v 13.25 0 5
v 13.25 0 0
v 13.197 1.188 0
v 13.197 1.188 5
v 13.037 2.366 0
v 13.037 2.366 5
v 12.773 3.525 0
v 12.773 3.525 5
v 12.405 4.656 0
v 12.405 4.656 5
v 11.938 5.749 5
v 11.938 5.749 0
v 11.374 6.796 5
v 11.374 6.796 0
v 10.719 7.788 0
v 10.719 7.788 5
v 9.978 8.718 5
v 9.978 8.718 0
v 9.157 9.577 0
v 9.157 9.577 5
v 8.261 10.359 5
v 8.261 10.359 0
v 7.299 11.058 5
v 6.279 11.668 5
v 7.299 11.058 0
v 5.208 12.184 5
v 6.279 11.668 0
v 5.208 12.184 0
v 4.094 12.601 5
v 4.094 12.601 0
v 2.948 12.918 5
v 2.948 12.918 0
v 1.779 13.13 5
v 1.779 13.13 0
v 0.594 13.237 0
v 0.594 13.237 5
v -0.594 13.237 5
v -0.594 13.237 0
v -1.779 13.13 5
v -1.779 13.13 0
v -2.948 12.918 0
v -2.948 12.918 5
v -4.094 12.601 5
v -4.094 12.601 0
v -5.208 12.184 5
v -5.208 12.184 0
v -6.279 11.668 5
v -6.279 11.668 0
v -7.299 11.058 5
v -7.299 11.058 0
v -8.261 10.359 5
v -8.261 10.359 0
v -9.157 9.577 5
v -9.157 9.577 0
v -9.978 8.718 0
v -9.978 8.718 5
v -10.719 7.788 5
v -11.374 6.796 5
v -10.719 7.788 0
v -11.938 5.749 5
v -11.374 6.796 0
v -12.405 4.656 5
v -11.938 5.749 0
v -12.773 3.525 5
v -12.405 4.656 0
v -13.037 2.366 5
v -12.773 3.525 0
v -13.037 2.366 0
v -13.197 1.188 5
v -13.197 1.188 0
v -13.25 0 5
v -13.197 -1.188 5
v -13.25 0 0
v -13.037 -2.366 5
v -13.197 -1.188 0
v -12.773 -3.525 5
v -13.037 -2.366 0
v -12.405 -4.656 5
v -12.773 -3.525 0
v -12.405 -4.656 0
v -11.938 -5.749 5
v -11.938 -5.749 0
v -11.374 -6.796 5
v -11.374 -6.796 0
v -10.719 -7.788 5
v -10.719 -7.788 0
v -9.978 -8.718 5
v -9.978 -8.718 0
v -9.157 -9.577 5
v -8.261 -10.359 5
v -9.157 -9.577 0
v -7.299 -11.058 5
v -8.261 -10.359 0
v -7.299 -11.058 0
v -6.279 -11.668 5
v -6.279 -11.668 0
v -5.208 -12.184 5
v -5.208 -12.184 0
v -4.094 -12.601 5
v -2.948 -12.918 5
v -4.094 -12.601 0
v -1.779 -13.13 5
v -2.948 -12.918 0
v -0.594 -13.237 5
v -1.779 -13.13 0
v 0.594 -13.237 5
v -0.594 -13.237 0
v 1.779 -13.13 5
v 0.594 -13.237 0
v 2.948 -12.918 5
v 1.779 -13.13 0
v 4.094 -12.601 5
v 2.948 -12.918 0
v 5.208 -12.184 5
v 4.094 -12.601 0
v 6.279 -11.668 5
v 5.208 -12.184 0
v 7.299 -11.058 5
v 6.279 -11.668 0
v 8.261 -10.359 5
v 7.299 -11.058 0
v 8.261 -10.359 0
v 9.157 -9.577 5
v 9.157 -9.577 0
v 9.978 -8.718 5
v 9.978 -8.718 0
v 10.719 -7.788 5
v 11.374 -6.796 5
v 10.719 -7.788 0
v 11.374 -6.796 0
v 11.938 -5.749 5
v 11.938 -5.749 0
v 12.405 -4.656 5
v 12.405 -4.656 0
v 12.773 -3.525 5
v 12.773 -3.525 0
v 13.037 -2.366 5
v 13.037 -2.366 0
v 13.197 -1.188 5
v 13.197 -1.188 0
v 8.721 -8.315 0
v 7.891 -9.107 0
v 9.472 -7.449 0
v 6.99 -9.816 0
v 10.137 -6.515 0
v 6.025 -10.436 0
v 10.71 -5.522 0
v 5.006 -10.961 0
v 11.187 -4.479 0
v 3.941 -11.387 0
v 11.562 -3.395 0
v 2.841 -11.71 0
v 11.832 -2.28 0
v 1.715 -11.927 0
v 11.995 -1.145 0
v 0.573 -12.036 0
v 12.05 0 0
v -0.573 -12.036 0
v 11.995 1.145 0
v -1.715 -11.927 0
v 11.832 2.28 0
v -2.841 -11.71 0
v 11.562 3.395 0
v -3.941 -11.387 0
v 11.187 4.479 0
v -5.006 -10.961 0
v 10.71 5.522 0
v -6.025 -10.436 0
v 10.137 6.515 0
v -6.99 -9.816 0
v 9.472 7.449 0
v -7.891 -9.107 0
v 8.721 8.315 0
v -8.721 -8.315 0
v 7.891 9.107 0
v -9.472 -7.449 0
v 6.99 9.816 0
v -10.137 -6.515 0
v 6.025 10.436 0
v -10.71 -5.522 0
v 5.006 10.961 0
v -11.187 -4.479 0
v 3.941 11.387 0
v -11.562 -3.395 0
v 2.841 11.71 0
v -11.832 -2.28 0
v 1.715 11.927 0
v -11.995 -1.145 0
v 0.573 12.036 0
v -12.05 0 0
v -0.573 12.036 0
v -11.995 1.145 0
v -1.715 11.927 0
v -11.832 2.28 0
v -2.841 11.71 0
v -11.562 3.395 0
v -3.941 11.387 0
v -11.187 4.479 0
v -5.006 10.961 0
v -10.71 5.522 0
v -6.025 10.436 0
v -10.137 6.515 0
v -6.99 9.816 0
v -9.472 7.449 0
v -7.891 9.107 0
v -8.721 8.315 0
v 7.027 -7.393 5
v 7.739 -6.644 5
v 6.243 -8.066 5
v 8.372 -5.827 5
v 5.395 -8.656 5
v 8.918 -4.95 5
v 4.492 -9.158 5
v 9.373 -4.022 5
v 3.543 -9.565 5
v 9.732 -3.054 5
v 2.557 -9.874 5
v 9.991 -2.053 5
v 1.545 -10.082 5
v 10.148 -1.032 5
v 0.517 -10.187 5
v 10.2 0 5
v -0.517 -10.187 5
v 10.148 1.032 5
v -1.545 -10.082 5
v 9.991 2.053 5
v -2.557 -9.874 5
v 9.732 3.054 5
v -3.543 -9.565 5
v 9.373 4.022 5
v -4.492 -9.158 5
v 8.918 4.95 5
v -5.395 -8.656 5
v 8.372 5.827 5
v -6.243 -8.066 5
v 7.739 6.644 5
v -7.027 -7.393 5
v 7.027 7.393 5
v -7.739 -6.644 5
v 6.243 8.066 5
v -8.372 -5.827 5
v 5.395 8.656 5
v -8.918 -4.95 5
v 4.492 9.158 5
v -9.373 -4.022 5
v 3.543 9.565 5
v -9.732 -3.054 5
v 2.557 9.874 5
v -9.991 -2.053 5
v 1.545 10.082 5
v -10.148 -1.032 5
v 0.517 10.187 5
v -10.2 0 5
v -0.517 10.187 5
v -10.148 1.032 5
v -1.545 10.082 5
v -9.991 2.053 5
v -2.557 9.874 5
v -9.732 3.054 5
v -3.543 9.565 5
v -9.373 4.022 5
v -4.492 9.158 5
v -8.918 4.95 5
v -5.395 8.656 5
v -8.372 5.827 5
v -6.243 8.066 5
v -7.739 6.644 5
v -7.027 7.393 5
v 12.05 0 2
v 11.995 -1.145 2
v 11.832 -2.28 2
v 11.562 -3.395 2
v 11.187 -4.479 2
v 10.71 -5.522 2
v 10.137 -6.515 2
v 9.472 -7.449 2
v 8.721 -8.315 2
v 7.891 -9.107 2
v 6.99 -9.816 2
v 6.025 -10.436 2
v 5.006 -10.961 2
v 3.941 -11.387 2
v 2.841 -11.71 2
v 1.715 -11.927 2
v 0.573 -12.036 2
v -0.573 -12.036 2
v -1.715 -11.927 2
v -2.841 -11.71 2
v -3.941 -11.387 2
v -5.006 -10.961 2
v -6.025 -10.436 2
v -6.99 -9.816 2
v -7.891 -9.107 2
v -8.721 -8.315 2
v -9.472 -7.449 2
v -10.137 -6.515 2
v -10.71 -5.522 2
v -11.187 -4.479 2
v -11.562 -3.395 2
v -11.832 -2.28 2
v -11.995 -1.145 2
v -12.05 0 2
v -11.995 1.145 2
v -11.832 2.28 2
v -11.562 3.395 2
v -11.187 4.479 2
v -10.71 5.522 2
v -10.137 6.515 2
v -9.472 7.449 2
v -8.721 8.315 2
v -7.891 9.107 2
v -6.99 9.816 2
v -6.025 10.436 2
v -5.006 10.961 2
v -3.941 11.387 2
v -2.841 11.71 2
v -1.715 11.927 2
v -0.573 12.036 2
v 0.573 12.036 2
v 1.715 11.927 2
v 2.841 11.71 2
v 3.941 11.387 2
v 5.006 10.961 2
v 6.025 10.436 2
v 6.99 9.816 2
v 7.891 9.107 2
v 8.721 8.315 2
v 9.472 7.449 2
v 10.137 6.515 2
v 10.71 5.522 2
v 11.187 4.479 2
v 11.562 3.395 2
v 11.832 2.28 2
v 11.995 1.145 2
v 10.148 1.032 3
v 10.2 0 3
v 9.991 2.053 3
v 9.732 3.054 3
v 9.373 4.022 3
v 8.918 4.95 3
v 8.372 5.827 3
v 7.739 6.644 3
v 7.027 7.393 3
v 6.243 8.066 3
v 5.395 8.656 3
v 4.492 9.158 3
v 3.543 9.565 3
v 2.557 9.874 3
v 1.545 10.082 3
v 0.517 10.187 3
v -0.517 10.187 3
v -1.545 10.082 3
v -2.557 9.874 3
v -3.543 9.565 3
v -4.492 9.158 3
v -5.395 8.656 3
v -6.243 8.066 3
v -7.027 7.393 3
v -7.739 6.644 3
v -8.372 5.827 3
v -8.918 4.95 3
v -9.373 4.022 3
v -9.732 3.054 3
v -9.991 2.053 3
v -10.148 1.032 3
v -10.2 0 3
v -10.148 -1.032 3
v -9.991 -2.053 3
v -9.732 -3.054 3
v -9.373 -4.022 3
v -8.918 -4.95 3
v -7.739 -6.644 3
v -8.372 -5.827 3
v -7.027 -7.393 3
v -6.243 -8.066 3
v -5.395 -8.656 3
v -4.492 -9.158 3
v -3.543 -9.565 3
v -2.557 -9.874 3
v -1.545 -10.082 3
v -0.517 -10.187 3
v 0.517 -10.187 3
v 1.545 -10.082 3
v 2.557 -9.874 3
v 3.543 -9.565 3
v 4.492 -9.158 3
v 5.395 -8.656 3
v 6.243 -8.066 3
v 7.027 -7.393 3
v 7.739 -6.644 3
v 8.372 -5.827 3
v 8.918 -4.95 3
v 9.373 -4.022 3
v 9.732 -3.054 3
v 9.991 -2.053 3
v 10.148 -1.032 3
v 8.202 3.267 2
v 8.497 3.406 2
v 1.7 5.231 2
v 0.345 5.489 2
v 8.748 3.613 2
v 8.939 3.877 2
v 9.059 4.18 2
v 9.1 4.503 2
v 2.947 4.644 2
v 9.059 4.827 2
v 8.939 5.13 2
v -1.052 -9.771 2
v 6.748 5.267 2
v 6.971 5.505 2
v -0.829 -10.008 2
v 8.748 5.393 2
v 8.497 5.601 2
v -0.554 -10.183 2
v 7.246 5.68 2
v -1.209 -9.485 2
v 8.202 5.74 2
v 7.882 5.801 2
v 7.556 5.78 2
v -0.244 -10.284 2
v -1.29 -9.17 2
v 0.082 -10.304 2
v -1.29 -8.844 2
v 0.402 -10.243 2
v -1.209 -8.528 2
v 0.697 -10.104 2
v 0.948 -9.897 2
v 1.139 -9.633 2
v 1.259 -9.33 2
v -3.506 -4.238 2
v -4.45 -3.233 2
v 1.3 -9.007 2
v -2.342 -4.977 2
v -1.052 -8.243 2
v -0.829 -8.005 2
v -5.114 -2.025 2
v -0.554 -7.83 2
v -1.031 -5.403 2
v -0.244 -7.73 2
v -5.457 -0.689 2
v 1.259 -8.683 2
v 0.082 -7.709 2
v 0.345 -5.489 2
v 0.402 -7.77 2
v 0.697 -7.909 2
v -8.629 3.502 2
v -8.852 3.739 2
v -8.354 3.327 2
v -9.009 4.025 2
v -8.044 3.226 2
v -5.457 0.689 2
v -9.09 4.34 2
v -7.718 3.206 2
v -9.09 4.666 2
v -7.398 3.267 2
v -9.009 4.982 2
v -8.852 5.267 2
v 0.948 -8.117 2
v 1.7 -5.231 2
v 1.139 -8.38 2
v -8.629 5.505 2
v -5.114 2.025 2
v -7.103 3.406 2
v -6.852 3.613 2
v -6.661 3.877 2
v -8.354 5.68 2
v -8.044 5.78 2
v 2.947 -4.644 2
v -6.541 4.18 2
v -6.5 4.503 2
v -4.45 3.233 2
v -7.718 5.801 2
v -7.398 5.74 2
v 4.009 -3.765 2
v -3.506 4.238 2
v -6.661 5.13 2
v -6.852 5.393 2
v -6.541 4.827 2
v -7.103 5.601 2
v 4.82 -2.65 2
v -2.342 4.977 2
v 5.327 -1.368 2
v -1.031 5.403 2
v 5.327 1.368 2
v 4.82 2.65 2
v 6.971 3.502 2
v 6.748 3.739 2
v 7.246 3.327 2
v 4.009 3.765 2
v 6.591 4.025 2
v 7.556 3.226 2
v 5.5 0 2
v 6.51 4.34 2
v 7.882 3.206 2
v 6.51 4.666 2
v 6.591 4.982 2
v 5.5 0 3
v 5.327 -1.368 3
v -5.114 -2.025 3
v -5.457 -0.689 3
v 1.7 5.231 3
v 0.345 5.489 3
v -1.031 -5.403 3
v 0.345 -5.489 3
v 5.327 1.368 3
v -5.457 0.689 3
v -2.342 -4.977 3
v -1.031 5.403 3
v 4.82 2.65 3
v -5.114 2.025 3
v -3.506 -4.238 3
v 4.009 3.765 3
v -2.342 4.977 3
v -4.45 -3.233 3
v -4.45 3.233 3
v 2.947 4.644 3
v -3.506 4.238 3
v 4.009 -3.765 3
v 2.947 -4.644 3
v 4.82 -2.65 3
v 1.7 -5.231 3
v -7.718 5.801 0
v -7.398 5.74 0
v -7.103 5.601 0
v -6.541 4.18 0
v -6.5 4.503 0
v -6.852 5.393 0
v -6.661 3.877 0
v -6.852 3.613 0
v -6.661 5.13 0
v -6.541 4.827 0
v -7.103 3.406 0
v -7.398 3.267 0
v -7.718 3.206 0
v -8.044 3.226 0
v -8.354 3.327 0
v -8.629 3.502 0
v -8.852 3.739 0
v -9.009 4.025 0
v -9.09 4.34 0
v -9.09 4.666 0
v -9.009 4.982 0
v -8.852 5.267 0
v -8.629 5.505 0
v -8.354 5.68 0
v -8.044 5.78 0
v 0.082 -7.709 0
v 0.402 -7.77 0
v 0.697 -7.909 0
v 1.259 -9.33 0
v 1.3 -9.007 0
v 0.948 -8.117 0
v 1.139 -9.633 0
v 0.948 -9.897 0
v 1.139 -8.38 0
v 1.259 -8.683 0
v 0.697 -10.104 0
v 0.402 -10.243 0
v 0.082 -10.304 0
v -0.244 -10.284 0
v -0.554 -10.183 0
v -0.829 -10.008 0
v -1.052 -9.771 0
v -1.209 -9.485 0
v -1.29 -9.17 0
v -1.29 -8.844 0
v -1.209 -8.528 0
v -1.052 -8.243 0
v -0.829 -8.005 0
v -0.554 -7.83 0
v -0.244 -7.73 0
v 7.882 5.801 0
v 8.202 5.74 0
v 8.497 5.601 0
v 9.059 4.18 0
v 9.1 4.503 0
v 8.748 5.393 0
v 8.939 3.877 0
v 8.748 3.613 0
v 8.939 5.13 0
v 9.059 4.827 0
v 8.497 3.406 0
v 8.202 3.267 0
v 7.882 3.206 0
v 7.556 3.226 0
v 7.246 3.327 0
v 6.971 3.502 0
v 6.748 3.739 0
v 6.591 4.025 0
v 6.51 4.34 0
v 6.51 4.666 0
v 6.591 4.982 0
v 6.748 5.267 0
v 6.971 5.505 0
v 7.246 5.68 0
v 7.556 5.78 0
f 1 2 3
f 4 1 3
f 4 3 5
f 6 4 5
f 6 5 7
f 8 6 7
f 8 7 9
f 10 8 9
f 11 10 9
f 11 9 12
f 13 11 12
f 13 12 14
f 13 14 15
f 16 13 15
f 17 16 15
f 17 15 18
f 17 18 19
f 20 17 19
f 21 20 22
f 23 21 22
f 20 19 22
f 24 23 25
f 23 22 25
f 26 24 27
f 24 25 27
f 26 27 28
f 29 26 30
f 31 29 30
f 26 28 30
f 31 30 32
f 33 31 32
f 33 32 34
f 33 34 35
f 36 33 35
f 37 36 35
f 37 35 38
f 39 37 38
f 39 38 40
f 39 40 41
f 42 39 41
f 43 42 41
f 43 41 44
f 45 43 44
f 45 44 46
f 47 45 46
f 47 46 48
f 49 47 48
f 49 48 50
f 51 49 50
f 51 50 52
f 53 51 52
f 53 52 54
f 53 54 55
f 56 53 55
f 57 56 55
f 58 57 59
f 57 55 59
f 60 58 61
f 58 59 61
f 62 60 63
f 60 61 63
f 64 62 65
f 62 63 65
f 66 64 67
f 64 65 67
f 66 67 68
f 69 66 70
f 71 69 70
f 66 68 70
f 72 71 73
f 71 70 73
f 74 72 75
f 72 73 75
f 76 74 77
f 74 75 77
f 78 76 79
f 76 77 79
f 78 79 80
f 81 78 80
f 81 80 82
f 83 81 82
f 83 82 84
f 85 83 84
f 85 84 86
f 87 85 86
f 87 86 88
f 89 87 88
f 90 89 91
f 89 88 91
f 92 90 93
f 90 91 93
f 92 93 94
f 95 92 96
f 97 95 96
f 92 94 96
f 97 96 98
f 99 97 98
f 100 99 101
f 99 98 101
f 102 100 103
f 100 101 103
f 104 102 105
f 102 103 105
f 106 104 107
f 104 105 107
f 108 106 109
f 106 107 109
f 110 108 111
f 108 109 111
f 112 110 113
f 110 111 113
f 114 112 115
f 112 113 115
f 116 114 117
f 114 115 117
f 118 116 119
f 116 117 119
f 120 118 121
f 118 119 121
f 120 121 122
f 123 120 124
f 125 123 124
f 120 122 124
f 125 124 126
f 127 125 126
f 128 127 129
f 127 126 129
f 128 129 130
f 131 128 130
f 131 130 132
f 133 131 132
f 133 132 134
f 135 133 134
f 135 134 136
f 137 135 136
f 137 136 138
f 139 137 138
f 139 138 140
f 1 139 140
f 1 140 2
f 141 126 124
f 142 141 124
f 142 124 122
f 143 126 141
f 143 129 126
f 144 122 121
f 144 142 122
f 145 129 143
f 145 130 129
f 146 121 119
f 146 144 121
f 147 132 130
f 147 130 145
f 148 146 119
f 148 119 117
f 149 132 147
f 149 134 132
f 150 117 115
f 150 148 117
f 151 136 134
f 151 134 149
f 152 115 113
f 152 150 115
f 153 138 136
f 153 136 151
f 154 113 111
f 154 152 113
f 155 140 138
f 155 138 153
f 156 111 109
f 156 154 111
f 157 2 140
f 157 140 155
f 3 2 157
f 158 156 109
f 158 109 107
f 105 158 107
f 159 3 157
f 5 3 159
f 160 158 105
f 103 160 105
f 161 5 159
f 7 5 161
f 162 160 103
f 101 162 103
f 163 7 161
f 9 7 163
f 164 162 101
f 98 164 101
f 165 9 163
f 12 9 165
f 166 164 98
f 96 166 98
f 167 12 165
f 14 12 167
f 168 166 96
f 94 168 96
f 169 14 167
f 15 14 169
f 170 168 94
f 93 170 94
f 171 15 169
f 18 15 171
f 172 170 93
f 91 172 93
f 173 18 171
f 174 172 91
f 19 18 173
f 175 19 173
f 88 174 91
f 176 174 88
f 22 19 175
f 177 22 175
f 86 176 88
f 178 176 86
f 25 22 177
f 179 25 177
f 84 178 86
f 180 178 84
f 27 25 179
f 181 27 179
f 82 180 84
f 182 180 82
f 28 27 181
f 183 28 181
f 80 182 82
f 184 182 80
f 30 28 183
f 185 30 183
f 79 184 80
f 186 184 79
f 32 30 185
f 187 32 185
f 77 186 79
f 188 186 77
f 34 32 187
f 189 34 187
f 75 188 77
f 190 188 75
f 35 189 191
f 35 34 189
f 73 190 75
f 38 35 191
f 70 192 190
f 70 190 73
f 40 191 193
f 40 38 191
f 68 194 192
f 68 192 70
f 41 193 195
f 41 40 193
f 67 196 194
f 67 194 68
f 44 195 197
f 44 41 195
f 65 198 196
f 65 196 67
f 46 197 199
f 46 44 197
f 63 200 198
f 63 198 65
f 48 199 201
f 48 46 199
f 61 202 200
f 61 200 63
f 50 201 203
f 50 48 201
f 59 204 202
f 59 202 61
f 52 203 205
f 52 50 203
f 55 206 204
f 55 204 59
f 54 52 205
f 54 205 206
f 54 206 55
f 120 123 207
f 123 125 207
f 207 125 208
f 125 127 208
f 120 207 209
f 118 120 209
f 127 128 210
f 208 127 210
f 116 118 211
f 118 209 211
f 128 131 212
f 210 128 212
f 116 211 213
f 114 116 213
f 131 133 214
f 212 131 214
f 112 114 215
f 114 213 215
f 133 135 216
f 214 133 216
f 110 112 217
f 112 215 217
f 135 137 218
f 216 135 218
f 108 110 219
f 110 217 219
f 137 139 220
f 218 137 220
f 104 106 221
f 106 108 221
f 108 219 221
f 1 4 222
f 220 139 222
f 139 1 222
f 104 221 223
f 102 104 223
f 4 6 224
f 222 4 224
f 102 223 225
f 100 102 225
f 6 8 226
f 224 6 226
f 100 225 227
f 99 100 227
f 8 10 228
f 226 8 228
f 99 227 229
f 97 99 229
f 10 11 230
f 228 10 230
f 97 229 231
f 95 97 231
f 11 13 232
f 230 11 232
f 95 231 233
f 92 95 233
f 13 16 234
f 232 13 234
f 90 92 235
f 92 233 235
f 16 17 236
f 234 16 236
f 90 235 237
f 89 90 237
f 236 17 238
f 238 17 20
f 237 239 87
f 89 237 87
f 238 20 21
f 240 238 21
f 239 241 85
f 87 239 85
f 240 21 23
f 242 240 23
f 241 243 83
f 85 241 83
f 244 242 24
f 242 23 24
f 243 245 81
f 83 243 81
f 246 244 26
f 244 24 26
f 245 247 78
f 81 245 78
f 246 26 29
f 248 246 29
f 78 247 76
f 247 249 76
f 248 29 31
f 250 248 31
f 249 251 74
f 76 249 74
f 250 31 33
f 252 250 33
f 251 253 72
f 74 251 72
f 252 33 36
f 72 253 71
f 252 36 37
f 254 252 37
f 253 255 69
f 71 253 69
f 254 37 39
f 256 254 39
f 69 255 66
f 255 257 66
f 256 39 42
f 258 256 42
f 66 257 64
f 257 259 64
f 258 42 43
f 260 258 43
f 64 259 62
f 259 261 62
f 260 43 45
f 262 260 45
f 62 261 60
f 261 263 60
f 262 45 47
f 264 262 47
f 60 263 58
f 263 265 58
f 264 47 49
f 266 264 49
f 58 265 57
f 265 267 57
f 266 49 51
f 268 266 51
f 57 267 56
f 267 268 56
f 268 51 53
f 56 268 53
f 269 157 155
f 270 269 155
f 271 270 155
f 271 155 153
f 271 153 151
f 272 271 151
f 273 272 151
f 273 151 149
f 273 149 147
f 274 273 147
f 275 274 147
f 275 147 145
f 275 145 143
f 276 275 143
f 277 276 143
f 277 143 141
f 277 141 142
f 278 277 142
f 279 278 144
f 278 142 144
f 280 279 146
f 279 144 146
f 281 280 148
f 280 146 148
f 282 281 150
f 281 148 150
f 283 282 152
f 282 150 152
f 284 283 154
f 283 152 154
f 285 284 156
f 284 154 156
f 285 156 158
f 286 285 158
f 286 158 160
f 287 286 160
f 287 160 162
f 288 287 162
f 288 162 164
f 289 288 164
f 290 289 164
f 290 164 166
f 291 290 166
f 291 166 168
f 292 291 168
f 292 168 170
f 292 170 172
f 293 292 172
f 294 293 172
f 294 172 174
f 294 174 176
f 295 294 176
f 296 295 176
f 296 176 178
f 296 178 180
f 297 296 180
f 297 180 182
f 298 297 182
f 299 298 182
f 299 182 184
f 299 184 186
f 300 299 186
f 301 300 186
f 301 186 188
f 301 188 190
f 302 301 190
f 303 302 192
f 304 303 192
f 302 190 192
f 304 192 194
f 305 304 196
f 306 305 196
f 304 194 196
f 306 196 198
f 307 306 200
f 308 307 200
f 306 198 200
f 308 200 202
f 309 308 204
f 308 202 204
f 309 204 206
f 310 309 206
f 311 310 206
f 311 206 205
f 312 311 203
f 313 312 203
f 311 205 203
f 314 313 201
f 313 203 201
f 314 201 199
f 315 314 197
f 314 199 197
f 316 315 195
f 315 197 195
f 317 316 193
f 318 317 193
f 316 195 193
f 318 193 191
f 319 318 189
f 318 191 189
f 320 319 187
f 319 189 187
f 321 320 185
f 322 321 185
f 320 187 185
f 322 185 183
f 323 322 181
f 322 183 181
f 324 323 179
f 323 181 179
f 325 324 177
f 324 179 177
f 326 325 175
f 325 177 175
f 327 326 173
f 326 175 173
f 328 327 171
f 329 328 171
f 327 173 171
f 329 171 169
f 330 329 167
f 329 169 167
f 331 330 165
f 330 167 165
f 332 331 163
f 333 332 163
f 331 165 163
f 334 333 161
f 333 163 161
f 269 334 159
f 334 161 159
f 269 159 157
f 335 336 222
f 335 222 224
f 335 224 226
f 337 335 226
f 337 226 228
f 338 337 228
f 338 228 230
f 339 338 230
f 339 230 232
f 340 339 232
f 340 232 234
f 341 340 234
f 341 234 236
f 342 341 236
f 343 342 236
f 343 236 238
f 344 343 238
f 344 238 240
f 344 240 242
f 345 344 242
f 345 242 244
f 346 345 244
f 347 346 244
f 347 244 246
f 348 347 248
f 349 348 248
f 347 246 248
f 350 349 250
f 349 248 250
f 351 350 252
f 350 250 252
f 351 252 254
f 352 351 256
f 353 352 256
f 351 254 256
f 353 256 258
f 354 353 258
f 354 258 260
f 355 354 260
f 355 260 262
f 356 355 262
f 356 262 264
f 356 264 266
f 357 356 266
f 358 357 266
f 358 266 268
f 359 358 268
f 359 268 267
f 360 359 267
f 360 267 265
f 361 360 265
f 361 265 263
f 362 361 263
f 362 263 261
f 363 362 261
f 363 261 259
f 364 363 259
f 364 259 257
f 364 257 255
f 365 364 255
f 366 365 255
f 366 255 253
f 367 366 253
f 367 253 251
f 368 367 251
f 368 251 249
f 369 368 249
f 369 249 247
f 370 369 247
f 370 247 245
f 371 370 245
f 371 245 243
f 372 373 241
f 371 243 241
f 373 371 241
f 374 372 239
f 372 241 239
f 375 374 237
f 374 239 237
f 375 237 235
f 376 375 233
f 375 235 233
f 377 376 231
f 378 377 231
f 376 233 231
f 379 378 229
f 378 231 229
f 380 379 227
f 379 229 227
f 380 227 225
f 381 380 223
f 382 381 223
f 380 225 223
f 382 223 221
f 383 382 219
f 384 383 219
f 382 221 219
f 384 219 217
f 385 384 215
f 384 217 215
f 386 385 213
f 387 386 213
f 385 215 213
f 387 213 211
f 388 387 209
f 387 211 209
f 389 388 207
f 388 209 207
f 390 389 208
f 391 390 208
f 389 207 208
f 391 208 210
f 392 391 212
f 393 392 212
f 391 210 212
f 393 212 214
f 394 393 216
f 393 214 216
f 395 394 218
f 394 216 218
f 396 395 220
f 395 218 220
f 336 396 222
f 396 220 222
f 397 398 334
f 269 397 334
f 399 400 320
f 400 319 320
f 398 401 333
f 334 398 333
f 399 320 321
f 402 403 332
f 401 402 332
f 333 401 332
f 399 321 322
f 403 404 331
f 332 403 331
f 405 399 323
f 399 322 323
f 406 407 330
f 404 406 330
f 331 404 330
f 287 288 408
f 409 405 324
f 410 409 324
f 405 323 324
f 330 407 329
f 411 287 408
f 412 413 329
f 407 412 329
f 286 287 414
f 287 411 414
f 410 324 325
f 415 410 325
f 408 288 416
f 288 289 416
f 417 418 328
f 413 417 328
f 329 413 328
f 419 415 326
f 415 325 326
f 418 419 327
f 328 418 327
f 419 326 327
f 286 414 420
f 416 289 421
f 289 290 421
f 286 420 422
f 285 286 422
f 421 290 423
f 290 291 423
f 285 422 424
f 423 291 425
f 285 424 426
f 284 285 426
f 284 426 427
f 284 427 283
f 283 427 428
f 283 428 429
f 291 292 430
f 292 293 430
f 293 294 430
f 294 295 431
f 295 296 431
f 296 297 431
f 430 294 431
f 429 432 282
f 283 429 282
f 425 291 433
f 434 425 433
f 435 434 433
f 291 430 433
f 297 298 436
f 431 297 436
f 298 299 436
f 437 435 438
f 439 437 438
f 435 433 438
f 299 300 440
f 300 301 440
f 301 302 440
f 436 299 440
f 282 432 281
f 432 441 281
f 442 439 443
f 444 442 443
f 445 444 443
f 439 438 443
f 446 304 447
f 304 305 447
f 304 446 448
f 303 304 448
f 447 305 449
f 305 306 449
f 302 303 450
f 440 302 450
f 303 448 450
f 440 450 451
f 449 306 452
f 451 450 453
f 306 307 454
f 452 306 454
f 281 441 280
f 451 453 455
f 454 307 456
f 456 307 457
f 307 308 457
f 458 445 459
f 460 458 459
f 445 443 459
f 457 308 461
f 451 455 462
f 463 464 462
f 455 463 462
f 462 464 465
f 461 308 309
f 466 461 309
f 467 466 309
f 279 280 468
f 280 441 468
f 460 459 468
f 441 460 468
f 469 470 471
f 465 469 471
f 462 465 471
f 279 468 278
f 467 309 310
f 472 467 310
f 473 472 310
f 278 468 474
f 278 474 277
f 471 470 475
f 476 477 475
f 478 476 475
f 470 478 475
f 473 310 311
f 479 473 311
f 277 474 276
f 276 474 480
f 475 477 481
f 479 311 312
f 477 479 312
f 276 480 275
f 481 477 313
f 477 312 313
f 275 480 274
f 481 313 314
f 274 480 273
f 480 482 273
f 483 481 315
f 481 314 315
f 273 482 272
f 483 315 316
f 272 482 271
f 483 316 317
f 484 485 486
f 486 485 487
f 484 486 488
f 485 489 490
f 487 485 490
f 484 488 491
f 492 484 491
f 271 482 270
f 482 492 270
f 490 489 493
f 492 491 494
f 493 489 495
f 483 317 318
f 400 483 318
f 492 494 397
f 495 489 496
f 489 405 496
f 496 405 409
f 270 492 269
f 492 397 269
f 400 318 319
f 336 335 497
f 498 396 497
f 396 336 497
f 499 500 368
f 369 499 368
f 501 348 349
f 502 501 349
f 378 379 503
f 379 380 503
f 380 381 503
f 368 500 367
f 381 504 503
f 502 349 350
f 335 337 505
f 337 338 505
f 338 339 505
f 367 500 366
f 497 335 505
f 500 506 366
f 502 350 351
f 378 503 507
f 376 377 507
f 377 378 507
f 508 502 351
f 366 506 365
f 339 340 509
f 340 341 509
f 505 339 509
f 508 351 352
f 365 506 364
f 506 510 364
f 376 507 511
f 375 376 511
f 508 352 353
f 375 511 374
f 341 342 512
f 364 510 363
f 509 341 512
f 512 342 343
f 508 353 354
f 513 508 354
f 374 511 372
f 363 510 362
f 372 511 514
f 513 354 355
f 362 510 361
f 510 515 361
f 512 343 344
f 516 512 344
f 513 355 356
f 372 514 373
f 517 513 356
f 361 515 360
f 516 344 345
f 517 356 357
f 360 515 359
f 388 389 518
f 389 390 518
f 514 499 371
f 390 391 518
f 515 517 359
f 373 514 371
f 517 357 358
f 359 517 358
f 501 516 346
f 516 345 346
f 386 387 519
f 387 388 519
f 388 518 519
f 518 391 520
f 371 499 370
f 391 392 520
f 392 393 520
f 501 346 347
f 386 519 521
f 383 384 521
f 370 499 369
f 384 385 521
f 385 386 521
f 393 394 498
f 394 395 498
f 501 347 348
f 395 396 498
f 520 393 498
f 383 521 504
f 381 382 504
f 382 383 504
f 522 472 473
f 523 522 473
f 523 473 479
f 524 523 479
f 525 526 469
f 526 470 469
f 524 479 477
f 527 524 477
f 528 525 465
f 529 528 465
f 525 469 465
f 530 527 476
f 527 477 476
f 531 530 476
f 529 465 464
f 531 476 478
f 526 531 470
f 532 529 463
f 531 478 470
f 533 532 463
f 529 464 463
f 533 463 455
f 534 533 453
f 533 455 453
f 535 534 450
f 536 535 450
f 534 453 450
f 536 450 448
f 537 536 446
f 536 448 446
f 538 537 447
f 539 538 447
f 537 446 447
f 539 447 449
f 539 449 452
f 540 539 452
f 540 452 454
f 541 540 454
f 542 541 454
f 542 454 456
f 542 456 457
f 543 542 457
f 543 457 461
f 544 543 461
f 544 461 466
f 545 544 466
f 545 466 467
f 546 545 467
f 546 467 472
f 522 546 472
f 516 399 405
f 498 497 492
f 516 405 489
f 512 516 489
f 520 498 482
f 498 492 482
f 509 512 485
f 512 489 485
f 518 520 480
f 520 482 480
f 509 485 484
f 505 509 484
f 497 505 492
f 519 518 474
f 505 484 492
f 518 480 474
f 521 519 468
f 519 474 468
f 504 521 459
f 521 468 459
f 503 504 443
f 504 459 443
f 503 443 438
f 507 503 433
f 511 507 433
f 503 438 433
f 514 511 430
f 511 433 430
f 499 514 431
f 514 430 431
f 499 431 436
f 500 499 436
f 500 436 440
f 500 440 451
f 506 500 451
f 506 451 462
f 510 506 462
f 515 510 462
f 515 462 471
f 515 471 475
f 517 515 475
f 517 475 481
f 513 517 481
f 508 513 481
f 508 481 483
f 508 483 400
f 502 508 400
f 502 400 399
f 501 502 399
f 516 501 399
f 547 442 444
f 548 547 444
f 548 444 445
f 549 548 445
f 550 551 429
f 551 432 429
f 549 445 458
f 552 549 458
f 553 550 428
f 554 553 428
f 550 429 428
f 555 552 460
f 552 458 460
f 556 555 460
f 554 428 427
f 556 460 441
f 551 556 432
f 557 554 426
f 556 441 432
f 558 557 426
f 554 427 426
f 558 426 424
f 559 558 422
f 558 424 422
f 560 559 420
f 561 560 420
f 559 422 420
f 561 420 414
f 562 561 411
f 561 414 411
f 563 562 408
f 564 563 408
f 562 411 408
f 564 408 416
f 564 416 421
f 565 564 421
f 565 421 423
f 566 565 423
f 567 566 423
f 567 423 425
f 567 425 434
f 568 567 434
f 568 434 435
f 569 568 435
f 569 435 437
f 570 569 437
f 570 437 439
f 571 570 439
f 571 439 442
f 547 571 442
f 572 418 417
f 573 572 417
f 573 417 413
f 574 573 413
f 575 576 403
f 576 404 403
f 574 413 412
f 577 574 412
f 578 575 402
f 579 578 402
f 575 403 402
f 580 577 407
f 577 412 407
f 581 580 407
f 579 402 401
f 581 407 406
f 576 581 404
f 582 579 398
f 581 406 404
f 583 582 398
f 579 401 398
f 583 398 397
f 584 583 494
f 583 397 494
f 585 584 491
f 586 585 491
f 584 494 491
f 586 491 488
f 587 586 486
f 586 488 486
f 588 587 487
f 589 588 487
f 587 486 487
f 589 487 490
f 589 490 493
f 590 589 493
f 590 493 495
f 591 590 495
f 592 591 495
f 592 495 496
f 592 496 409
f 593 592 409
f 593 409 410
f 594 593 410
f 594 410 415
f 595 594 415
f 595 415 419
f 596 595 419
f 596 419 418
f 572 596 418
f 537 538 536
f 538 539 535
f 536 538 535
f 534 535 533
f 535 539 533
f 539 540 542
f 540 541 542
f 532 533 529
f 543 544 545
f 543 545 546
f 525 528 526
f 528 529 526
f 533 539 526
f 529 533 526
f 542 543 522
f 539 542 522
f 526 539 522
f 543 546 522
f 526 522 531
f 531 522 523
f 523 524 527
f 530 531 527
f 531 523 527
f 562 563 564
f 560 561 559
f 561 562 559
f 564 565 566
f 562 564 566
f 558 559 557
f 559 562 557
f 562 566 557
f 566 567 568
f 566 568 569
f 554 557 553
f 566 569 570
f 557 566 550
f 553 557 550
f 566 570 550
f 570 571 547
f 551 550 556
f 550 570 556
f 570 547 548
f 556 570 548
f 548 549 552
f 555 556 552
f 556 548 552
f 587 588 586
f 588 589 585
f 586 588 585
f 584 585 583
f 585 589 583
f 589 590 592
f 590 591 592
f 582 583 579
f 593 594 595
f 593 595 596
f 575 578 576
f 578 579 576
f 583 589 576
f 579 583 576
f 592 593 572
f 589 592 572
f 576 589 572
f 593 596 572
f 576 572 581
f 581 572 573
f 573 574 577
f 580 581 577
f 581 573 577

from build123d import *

# Parameters (mm, degrees)
SKETCH_R        = 13.25
PAD_DEPTH       = 5
SKETCH001_R     = 10.2
POCKET_DEPTH    = 2
SKETCH002_R     = 12.05
POCKET001_DEPTH = 2
SKETCH003_R     = 5.5
POCKET002_DEPTH = 5
SKETCH004_R     = 1.3
PAD001_DEPTH    = 2


with BuildPart() as part:
    # Sketch → Pad (new body)
    with BuildSketch(Plane.XY):
        Circle(SKETCH_R)
    extrude(amount=PAD_DEPTH)

    # Sketch001 → Pocket (cut)
    with BuildSketch(Plane.XY.offset(5)):
        Circle(SKETCH001_R)
    extrude(amount=-POCKET_DEPTH, mode=Mode.SUBTRACT)

    # Sketch002 → Pocket001 (cut)
    with BuildSketch(Plane(origin=(0, 0, 0), x_dir=(1, 0, 0), z_dir=(0, 0, -1))):
        Circle(SKETCH002_R)
    extrude(amount=-POCKET001_DEPTH, mode=Mode.SUBTRACT)

    # Sketch003 → Pocket002 (cut)
    with BuildSketch(Plane(origin=(0, 0, 2), x_dir=(1, 0, 0), z_dir=(0, 0, -1))):
        Circle(SKETCH003_R)
    extrude(amount=-POCKET002_DEPTH, mode=Mode.SUBTRACT)

    # Sketch004 → Pad001 (new body)
    with BuildSketch(Plane(origin=(0, 0, 2), x_dir=(1, 0, 0), z_dir=(0, 0, -1))):
        with Locations((0, 9.00666)):
            Circle(SKETCH004_R)
        with Locations((7.8, -4.50333)):
            Circle(SKETCH004_R)
        with Locations((-7.8, -4.50333)):
            Circle(SKETCH004_R)
    extrude(amount=PAD001_DEPTH)


solid = part.part
